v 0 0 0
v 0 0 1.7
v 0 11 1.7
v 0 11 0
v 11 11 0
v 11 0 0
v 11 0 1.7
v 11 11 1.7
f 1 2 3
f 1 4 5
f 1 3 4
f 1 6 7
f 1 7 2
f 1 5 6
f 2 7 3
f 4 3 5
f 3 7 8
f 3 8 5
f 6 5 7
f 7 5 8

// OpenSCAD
/* Warning, this is a very basic generator with a lot of approximation 
input data : [LBGA, 6BC, 11x11x1.7mm, 100, , A, C04-25059A]
generated by com.zoubworld.electronics.cad.model3d.Basic
Date : Sun Feb 15 10:50:49 CET 2026
*/

//body
color("black")
translate([0,0,0])
cube([11.0,11.0,1.7], center=false);
